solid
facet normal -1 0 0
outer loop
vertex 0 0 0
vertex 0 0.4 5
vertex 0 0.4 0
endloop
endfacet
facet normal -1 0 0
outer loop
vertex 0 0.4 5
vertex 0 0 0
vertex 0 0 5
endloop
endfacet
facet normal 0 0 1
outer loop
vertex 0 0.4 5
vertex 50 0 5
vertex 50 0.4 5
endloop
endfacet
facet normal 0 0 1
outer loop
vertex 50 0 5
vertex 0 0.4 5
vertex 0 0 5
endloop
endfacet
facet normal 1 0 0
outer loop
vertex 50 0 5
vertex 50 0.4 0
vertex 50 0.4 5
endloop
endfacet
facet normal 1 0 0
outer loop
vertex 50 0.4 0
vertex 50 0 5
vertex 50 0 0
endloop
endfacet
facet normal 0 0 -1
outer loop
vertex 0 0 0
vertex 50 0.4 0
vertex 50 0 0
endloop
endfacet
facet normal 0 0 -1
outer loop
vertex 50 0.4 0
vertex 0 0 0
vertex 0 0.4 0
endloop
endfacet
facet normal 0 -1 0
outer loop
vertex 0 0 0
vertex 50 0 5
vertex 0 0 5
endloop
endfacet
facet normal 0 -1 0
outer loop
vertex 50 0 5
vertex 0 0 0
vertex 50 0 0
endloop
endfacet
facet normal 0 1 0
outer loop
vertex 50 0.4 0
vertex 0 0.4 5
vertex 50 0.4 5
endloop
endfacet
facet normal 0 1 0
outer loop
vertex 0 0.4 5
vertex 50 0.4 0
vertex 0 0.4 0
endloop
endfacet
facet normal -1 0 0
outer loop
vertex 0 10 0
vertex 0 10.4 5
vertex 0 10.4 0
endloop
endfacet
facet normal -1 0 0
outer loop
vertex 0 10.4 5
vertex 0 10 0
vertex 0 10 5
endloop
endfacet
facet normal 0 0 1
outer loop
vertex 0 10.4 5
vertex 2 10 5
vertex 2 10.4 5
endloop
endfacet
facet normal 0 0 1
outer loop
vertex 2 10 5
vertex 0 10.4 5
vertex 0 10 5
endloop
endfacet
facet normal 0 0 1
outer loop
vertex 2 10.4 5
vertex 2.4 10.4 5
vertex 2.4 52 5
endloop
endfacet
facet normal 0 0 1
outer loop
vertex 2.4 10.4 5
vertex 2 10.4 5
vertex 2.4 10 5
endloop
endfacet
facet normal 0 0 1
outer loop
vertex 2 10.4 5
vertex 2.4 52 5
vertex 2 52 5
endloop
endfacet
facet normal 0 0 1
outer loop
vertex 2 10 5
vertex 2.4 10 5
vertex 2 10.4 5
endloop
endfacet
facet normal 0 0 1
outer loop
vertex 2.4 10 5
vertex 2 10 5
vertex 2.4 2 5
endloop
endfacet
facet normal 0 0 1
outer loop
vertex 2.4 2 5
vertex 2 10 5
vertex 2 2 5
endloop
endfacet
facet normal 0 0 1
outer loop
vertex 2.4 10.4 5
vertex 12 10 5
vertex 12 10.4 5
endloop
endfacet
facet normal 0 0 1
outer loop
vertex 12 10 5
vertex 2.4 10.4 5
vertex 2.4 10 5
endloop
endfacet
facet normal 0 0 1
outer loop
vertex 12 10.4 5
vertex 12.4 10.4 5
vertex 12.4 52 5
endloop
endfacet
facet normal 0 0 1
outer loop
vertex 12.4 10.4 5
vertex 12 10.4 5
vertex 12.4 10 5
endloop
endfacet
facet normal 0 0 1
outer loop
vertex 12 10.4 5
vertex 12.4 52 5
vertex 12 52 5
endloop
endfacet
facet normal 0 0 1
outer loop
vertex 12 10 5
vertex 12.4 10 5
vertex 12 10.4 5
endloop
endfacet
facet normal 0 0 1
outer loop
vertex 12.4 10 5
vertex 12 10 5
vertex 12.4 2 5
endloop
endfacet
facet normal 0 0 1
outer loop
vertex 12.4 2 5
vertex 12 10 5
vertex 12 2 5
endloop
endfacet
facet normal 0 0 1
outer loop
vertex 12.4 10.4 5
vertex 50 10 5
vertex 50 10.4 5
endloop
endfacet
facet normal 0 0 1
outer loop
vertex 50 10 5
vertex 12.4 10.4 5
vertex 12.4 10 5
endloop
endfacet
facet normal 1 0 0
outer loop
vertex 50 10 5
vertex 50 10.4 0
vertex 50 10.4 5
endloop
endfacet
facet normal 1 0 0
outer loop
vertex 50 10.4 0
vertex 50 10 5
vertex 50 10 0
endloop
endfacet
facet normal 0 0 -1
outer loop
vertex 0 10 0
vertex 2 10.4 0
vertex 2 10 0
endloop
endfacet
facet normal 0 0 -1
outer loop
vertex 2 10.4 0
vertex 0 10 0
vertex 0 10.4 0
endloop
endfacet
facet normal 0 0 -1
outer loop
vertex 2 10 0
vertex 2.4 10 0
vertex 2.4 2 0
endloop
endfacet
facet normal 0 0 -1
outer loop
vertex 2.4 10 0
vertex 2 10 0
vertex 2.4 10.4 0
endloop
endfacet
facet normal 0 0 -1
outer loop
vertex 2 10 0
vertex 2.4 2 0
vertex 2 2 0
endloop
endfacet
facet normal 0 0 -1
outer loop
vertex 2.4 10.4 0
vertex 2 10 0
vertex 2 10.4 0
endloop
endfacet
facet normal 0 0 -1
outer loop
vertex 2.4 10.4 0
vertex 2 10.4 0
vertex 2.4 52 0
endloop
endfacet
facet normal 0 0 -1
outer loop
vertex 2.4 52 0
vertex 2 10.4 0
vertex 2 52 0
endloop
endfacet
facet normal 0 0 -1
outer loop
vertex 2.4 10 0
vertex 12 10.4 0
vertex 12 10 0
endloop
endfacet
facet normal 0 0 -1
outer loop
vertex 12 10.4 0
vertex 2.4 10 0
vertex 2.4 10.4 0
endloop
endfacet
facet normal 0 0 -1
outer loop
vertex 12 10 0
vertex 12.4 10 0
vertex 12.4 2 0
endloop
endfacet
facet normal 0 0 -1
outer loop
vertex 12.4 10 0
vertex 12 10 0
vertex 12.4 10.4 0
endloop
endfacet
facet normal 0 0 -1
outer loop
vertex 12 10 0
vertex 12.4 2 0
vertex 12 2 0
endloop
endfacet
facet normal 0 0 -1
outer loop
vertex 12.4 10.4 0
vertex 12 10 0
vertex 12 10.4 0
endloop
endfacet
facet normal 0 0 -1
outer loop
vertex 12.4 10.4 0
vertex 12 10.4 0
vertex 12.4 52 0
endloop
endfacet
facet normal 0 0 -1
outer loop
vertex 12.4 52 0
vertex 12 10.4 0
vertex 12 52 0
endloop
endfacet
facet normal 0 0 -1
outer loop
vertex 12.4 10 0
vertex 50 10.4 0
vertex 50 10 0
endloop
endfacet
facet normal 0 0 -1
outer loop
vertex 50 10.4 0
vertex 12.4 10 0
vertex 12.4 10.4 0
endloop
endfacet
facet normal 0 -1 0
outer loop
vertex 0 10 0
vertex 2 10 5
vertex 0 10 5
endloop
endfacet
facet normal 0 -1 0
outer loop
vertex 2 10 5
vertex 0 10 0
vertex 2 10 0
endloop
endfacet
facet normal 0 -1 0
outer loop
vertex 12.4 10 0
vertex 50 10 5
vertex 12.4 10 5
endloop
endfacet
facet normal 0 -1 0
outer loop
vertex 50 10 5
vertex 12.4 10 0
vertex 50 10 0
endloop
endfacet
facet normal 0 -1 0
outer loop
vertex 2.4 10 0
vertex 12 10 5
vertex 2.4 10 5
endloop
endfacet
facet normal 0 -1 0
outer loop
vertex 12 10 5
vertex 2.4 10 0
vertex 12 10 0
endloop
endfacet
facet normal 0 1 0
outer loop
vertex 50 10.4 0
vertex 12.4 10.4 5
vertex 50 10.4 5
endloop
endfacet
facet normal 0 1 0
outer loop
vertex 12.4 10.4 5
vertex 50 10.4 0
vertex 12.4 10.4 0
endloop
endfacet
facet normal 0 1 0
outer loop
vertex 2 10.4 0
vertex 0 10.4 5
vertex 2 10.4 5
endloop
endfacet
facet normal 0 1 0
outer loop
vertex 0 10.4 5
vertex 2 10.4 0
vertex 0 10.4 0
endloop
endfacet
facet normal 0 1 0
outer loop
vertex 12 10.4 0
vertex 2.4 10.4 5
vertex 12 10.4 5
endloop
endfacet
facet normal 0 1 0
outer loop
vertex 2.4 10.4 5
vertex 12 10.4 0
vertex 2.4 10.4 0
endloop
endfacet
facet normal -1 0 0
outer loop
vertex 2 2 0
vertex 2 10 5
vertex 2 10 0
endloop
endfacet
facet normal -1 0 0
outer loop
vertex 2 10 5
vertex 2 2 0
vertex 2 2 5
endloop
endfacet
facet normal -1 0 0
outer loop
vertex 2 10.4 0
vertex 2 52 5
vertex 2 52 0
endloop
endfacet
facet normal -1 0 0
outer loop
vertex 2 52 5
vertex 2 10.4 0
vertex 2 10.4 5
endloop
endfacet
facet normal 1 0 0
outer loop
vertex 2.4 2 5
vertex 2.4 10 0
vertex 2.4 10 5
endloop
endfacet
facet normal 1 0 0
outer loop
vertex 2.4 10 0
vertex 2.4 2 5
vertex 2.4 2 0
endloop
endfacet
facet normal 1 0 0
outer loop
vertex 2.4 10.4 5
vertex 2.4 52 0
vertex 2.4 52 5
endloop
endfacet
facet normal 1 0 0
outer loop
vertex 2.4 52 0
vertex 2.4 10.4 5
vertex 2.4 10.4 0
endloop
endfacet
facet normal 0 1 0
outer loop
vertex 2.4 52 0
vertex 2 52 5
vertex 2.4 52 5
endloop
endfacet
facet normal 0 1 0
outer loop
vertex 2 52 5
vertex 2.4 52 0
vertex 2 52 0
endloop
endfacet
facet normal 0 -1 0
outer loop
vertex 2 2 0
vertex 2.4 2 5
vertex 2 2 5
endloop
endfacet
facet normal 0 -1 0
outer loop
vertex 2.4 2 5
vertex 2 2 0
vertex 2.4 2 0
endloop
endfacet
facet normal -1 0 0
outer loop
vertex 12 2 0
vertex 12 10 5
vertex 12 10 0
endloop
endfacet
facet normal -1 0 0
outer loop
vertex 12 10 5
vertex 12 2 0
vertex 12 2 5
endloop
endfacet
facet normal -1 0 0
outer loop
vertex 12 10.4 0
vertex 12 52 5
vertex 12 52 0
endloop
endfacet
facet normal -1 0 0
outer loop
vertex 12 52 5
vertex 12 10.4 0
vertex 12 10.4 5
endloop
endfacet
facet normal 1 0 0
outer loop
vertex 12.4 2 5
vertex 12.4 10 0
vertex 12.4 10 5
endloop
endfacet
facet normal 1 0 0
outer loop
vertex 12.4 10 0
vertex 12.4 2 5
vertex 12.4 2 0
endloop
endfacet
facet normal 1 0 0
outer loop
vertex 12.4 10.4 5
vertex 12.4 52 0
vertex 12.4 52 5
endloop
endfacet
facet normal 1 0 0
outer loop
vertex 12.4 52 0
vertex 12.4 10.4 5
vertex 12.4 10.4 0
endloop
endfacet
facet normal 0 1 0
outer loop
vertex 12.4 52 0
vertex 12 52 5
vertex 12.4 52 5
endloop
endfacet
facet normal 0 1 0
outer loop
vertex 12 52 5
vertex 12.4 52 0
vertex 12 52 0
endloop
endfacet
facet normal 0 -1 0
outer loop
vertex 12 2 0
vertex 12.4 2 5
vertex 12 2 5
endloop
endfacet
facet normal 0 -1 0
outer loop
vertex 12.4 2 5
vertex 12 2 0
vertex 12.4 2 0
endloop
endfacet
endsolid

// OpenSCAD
nozzle=0.4;

height=5;

cube([50,0.4,height]);

translate([0,10,0]) cube([50,0.4,height]);

translate([2,2,0]) cube([0.4,50,height]);

translate([12,2,0]) cube([0.4,50,height]);
